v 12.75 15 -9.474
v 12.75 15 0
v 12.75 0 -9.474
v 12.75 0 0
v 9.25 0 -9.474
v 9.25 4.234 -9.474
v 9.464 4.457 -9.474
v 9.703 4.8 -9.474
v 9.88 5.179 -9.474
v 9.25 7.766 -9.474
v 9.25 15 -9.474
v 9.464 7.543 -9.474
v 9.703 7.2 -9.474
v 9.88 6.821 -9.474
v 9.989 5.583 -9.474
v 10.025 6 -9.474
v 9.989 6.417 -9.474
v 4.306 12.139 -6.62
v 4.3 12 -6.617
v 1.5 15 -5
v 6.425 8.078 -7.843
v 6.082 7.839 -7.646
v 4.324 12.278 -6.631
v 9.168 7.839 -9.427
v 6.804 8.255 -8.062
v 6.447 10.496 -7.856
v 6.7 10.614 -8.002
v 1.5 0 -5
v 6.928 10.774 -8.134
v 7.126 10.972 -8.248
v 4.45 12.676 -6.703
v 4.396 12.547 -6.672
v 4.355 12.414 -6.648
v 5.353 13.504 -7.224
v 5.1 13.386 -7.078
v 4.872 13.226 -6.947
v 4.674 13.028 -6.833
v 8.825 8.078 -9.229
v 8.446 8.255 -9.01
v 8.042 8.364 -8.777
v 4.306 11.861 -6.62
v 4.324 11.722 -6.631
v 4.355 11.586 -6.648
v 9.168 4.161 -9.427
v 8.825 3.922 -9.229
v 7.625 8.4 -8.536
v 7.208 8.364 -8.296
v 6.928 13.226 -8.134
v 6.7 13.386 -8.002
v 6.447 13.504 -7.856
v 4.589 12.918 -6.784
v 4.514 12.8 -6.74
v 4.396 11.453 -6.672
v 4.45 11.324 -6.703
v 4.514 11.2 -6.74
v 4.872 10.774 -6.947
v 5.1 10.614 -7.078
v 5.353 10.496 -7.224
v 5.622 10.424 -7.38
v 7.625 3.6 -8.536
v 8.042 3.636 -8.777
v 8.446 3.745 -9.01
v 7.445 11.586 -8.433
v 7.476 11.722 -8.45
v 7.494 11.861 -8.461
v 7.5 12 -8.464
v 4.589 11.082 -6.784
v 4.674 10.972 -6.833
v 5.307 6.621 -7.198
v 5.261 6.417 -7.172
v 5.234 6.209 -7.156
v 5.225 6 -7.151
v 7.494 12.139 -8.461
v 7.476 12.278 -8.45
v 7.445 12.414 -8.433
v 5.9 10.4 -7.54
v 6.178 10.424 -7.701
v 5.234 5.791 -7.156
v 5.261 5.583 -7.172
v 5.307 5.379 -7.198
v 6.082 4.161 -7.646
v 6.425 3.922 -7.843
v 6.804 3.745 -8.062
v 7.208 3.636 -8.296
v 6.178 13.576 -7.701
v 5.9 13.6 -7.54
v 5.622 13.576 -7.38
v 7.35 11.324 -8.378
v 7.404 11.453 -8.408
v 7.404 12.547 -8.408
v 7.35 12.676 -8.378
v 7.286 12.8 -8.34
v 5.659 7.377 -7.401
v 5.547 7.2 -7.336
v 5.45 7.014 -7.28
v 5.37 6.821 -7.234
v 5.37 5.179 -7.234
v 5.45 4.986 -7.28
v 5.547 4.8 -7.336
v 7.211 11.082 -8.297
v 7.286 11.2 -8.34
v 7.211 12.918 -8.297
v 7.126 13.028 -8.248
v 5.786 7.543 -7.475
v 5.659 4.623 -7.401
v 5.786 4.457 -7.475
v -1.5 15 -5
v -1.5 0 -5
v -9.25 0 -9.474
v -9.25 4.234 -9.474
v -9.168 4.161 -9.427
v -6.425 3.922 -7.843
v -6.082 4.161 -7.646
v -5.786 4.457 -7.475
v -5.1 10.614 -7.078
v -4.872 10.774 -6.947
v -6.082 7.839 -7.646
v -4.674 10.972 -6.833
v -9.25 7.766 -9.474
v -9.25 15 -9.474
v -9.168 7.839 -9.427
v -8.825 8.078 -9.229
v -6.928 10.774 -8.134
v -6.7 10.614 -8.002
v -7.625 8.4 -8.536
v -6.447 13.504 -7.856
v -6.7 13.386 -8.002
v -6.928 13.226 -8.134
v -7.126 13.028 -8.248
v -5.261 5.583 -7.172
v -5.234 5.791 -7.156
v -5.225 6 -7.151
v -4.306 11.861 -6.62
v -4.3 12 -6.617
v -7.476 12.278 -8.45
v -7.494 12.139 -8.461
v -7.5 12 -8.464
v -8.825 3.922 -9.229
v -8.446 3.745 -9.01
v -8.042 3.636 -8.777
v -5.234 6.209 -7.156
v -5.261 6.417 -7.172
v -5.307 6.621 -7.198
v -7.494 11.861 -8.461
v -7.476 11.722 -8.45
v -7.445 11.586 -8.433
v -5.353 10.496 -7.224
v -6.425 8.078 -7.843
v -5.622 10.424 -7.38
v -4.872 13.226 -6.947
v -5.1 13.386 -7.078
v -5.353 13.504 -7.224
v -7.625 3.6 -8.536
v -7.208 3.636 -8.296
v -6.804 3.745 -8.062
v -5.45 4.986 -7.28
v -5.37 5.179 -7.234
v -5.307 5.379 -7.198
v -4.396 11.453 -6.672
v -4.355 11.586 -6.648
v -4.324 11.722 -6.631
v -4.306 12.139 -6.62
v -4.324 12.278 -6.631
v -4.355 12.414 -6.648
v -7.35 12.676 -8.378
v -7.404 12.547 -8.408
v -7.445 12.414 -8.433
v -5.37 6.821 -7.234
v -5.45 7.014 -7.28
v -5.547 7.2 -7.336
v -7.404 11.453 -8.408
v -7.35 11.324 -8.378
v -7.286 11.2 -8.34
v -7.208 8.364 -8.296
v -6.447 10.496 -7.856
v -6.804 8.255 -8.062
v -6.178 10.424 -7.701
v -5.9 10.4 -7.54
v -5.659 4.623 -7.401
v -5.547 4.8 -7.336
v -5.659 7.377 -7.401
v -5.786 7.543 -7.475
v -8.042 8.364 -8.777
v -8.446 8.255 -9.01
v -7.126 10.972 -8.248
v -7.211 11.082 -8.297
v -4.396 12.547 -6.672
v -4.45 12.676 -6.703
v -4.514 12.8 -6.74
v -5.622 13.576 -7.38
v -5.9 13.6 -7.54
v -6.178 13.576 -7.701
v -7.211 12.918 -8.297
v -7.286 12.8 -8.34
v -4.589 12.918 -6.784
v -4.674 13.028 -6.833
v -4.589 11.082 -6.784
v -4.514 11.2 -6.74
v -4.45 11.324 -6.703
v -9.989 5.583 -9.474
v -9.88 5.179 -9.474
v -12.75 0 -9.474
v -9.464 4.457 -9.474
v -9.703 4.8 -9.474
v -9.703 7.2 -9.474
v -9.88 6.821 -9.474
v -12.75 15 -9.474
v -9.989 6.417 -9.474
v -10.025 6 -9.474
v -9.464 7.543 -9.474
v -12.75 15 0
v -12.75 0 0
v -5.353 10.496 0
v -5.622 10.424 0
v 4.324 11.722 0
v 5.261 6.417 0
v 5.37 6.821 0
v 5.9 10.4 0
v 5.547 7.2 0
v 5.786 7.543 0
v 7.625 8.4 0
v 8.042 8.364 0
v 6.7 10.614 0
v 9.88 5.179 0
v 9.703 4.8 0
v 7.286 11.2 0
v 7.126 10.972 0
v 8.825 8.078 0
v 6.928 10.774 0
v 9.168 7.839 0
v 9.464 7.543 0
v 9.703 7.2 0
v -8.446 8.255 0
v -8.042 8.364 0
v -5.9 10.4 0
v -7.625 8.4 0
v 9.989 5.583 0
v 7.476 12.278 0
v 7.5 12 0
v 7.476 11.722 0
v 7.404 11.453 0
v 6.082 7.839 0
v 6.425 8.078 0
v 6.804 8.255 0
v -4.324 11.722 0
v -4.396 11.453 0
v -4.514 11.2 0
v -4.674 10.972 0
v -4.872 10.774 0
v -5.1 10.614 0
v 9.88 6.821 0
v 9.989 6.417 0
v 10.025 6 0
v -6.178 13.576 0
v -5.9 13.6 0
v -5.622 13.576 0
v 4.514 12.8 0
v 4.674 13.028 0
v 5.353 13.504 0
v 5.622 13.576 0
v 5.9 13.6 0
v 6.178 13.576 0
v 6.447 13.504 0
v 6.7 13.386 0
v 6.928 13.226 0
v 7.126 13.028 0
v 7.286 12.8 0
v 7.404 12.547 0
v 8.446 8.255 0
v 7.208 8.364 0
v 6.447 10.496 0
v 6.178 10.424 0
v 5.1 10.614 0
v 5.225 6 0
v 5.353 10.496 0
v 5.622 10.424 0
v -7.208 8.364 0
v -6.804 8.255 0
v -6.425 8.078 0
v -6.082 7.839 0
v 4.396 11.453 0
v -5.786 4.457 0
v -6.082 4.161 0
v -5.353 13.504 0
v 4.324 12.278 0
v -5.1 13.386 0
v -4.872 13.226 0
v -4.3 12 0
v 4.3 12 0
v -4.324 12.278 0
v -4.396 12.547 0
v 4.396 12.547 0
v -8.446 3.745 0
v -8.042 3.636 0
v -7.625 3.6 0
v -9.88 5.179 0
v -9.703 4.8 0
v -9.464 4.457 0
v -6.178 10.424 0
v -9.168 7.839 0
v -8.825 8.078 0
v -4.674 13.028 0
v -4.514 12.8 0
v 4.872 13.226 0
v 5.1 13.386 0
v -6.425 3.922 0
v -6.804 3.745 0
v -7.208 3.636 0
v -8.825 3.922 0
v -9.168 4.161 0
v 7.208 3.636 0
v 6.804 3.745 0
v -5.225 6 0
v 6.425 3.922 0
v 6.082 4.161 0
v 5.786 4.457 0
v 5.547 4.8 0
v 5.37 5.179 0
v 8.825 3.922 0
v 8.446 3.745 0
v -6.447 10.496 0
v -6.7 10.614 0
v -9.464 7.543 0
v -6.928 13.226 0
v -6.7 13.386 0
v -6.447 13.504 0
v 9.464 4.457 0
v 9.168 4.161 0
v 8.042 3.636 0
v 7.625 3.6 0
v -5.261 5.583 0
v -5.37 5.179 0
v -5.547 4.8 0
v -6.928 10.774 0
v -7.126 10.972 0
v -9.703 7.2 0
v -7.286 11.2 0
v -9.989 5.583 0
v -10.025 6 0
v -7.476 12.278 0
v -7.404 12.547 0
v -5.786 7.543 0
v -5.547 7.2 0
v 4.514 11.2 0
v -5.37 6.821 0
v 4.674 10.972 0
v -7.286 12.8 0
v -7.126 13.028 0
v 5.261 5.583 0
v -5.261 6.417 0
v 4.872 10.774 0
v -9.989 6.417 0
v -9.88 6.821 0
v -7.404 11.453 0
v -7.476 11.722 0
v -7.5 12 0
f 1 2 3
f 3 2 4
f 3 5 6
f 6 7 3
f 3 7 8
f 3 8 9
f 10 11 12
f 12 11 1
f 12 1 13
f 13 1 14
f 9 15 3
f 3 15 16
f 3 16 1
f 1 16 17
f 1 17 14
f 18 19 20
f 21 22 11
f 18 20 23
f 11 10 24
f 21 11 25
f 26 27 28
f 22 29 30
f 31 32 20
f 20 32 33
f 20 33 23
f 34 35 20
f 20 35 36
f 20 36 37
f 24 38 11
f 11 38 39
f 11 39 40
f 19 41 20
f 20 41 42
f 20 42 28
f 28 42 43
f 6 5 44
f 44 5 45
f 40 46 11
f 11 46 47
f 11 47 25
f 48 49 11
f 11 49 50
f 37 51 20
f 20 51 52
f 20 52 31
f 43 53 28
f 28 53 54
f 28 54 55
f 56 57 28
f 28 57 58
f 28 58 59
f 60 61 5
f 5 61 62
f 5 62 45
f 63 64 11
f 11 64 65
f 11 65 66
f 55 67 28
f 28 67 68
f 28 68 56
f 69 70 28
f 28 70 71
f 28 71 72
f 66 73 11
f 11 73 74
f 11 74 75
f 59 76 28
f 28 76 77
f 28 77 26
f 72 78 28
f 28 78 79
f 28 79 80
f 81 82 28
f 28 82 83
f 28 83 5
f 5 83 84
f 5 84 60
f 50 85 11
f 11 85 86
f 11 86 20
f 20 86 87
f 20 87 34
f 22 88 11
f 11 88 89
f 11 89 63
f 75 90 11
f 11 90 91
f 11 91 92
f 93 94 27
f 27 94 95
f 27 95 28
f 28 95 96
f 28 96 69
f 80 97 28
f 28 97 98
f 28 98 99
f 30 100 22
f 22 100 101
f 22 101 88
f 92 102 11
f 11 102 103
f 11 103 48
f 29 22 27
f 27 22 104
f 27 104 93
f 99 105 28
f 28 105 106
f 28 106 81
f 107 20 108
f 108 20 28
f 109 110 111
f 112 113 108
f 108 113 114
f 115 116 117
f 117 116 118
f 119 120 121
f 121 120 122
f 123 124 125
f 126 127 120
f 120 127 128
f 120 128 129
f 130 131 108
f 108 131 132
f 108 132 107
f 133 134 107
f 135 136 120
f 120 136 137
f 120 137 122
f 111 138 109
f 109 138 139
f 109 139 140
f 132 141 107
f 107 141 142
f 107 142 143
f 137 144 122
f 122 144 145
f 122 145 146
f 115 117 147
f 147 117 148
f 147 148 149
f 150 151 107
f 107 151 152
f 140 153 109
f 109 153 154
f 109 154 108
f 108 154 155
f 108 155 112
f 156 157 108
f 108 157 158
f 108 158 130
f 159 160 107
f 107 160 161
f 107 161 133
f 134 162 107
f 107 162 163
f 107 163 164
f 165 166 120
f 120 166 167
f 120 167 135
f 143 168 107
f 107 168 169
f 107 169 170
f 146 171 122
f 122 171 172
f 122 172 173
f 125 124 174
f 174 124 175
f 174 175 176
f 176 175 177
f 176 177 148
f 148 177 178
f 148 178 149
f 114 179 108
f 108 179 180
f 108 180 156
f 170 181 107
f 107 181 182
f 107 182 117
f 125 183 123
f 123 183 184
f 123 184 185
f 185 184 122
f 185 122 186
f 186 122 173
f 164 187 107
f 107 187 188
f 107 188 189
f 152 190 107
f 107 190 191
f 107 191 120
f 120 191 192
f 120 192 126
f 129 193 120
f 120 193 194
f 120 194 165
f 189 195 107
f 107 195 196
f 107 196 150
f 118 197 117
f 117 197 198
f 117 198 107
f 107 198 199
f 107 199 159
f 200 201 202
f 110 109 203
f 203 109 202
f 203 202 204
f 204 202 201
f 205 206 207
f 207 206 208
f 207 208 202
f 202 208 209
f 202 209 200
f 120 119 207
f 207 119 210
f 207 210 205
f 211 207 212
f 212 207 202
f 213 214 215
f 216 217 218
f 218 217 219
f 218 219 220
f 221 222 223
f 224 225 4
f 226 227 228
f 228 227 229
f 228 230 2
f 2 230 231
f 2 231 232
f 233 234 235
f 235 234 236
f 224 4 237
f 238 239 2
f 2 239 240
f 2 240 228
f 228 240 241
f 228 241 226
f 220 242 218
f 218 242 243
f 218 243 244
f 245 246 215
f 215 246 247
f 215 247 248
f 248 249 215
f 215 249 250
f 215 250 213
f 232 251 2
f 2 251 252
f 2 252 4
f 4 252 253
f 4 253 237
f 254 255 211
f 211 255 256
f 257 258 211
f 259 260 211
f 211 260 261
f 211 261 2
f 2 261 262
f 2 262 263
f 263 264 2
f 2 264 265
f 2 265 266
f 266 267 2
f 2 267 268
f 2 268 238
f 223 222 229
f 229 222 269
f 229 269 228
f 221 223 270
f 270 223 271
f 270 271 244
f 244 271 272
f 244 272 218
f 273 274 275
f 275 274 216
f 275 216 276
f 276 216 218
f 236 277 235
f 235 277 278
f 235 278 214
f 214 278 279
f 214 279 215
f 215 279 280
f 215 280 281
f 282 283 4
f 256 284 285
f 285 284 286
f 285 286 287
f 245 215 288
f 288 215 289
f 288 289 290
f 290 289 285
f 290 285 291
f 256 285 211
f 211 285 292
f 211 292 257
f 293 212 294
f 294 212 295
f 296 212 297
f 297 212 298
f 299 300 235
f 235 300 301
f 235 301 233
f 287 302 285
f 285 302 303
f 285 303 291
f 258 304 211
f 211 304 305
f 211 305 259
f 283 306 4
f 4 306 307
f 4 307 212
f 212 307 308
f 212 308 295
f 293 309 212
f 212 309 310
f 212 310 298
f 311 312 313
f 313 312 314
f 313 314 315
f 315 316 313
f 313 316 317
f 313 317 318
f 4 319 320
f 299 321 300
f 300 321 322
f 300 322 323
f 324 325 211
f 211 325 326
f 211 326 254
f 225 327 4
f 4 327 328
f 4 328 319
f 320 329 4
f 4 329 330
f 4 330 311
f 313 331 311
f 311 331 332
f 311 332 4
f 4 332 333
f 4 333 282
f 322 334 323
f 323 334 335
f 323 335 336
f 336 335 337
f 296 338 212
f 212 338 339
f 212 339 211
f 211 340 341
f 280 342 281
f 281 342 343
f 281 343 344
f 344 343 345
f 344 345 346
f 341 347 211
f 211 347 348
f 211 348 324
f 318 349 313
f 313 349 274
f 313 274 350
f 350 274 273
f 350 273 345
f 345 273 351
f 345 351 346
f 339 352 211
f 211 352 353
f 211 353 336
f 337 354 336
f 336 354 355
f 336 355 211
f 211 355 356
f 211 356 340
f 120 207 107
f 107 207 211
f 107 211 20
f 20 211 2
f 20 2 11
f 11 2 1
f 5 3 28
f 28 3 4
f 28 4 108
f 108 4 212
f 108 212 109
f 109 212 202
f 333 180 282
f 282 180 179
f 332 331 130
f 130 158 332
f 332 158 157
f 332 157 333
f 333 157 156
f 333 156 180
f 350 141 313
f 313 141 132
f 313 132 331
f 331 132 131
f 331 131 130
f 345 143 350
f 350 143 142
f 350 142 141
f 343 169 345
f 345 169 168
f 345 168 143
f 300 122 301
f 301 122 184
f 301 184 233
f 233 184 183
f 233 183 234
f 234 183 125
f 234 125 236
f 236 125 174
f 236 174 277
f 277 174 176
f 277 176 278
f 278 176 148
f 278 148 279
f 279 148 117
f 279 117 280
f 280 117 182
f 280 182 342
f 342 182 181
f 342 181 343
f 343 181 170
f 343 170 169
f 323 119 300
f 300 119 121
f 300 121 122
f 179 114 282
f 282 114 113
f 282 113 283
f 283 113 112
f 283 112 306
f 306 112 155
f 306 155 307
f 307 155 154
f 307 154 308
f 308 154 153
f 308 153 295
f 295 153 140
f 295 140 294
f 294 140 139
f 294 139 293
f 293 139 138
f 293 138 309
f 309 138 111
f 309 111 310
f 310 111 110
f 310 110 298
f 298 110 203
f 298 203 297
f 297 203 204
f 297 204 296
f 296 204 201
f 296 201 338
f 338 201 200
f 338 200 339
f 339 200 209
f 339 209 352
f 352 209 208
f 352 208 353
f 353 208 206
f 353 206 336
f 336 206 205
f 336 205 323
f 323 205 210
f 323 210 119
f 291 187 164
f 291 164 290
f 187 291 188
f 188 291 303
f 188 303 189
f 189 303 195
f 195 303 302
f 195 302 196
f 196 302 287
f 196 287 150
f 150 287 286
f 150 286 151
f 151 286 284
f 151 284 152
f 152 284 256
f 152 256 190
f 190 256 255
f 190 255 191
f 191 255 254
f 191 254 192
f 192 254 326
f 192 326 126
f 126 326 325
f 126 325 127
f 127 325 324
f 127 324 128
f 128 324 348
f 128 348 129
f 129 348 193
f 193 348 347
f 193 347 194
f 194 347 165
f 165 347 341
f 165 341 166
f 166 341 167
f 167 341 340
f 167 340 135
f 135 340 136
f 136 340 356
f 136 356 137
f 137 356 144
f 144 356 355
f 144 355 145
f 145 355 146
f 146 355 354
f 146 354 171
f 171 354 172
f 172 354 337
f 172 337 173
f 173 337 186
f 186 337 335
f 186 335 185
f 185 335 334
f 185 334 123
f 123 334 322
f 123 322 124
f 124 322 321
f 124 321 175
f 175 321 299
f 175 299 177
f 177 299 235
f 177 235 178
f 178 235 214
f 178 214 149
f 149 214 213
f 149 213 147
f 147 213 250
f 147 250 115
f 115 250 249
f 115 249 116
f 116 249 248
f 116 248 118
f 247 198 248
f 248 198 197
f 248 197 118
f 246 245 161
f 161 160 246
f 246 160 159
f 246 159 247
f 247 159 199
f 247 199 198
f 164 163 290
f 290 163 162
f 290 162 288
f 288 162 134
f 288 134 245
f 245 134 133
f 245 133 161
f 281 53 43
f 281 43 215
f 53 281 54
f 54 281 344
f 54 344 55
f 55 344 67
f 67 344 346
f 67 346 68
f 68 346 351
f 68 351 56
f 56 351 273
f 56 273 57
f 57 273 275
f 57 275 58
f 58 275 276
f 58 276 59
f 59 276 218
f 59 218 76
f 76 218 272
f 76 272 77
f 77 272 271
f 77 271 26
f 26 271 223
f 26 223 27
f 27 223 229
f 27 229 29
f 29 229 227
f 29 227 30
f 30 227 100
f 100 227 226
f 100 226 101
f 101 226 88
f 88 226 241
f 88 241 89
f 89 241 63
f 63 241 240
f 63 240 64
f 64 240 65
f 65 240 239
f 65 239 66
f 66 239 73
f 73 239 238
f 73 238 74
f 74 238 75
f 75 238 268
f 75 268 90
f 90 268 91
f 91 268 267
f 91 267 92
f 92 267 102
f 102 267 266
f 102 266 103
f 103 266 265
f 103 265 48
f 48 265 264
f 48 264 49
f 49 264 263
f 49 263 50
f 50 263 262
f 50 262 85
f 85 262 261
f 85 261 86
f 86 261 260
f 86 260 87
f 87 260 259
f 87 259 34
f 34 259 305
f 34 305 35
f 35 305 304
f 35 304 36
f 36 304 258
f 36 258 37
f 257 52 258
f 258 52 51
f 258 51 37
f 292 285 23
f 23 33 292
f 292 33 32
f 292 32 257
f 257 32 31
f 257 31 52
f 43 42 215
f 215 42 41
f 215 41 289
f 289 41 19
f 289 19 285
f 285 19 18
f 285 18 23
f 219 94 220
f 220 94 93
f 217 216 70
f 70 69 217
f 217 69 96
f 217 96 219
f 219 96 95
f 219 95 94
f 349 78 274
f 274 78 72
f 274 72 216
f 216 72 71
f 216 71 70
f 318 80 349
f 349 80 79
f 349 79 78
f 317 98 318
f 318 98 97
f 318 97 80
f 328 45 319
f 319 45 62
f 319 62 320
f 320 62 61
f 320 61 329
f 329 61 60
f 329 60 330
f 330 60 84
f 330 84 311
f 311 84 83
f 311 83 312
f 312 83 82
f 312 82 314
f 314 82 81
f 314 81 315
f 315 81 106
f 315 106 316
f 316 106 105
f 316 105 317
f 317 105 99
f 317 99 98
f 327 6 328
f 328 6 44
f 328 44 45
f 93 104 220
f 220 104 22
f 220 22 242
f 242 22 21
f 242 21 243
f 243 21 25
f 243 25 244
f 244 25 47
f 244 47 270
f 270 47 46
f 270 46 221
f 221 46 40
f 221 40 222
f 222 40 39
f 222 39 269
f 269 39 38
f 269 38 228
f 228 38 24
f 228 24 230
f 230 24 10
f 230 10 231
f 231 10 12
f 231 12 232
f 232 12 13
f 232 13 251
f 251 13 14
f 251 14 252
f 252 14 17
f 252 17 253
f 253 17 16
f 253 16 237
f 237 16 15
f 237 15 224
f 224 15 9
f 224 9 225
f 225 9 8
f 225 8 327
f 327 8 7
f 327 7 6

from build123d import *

# Parameters (mm, degrees)
BOSS_EXTRUDE1_DEPTH = 15
SKETCH2_R           = 1.6
SKETCH2_R_2         = 2.4
CUT_EXTRUDE1_DEPTH  = 22.847836945


with BuildPart() as part:
    # Sketch1 → Boss-Extrude1 (new body)
    with BuildSketch(Plane(origin=(0, 0, 0), x_dir=(1, 0, 0), z_dir=(0, 1, 0))):
        Polygon((0, 0), (10.25, 0), (12.75, 0), (12.75, 9.474464586), (9.25, 9.474464586), (1.5, 5), (0, 5), (-1.5, 5), (-9.25, 9.474464586), (-12.75, 9.474464586), (-12.75, 0), (-10.25, 0), align=None)
    extrude(amount=BOSS_EXTRUDE1_DEPTH)

    # Sketch2 → Cut-Extrude1 (cut, through all)
    with BuildSketch(Plane.XY):
        with Locations((-5.9, 12)):
            Circle(SKETCH2_R)
        with Locations((5.9, 12)):
            Circle(SKETCH2_R)
        with Locations((-7.625, 6)):
            Circle(SKETCH2_R_2)
        with Locations((7.625, 6)):
            Circle(SKETCH2_R_2)
    extrude(amount=-CUT_EXTRUDE1_DEPTH, mode=Mode.SUBTRACT)


solid = part.part
